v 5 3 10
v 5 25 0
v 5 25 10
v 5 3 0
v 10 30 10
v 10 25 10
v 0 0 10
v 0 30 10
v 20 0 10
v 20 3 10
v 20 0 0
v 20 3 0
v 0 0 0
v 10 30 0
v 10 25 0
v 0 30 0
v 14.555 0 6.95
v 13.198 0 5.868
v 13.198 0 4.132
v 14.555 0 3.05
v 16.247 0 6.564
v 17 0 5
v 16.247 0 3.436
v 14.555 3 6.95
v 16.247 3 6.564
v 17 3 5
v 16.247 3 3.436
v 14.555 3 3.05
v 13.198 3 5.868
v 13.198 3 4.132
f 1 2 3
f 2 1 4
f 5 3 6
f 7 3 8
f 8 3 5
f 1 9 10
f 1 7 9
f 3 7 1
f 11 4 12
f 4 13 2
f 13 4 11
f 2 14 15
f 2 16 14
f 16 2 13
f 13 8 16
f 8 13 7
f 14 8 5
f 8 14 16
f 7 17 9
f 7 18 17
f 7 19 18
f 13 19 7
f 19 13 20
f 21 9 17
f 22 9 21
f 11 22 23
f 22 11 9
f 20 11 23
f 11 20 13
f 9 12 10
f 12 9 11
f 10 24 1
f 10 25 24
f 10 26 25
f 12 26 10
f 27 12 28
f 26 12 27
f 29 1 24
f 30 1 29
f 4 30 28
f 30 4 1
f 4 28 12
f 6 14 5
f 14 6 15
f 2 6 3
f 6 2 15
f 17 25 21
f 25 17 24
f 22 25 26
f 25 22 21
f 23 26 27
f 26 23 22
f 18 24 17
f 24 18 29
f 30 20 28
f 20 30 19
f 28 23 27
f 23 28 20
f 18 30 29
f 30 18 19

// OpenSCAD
// x axis endstop for Solidoodle 2 using lawsy carriage

difference(){
    
union(){
  translate([0,0,0])
    cube([5,30,10]);
    
 
  translate([0,0,0])
    cube([20,3,10]);
    
  translate([0,25,0])
    cube([10,5,10]);
};

  translate([15,7,5])
    rotate([90,0,0])
    cylinder(10,2,2);
  }  
